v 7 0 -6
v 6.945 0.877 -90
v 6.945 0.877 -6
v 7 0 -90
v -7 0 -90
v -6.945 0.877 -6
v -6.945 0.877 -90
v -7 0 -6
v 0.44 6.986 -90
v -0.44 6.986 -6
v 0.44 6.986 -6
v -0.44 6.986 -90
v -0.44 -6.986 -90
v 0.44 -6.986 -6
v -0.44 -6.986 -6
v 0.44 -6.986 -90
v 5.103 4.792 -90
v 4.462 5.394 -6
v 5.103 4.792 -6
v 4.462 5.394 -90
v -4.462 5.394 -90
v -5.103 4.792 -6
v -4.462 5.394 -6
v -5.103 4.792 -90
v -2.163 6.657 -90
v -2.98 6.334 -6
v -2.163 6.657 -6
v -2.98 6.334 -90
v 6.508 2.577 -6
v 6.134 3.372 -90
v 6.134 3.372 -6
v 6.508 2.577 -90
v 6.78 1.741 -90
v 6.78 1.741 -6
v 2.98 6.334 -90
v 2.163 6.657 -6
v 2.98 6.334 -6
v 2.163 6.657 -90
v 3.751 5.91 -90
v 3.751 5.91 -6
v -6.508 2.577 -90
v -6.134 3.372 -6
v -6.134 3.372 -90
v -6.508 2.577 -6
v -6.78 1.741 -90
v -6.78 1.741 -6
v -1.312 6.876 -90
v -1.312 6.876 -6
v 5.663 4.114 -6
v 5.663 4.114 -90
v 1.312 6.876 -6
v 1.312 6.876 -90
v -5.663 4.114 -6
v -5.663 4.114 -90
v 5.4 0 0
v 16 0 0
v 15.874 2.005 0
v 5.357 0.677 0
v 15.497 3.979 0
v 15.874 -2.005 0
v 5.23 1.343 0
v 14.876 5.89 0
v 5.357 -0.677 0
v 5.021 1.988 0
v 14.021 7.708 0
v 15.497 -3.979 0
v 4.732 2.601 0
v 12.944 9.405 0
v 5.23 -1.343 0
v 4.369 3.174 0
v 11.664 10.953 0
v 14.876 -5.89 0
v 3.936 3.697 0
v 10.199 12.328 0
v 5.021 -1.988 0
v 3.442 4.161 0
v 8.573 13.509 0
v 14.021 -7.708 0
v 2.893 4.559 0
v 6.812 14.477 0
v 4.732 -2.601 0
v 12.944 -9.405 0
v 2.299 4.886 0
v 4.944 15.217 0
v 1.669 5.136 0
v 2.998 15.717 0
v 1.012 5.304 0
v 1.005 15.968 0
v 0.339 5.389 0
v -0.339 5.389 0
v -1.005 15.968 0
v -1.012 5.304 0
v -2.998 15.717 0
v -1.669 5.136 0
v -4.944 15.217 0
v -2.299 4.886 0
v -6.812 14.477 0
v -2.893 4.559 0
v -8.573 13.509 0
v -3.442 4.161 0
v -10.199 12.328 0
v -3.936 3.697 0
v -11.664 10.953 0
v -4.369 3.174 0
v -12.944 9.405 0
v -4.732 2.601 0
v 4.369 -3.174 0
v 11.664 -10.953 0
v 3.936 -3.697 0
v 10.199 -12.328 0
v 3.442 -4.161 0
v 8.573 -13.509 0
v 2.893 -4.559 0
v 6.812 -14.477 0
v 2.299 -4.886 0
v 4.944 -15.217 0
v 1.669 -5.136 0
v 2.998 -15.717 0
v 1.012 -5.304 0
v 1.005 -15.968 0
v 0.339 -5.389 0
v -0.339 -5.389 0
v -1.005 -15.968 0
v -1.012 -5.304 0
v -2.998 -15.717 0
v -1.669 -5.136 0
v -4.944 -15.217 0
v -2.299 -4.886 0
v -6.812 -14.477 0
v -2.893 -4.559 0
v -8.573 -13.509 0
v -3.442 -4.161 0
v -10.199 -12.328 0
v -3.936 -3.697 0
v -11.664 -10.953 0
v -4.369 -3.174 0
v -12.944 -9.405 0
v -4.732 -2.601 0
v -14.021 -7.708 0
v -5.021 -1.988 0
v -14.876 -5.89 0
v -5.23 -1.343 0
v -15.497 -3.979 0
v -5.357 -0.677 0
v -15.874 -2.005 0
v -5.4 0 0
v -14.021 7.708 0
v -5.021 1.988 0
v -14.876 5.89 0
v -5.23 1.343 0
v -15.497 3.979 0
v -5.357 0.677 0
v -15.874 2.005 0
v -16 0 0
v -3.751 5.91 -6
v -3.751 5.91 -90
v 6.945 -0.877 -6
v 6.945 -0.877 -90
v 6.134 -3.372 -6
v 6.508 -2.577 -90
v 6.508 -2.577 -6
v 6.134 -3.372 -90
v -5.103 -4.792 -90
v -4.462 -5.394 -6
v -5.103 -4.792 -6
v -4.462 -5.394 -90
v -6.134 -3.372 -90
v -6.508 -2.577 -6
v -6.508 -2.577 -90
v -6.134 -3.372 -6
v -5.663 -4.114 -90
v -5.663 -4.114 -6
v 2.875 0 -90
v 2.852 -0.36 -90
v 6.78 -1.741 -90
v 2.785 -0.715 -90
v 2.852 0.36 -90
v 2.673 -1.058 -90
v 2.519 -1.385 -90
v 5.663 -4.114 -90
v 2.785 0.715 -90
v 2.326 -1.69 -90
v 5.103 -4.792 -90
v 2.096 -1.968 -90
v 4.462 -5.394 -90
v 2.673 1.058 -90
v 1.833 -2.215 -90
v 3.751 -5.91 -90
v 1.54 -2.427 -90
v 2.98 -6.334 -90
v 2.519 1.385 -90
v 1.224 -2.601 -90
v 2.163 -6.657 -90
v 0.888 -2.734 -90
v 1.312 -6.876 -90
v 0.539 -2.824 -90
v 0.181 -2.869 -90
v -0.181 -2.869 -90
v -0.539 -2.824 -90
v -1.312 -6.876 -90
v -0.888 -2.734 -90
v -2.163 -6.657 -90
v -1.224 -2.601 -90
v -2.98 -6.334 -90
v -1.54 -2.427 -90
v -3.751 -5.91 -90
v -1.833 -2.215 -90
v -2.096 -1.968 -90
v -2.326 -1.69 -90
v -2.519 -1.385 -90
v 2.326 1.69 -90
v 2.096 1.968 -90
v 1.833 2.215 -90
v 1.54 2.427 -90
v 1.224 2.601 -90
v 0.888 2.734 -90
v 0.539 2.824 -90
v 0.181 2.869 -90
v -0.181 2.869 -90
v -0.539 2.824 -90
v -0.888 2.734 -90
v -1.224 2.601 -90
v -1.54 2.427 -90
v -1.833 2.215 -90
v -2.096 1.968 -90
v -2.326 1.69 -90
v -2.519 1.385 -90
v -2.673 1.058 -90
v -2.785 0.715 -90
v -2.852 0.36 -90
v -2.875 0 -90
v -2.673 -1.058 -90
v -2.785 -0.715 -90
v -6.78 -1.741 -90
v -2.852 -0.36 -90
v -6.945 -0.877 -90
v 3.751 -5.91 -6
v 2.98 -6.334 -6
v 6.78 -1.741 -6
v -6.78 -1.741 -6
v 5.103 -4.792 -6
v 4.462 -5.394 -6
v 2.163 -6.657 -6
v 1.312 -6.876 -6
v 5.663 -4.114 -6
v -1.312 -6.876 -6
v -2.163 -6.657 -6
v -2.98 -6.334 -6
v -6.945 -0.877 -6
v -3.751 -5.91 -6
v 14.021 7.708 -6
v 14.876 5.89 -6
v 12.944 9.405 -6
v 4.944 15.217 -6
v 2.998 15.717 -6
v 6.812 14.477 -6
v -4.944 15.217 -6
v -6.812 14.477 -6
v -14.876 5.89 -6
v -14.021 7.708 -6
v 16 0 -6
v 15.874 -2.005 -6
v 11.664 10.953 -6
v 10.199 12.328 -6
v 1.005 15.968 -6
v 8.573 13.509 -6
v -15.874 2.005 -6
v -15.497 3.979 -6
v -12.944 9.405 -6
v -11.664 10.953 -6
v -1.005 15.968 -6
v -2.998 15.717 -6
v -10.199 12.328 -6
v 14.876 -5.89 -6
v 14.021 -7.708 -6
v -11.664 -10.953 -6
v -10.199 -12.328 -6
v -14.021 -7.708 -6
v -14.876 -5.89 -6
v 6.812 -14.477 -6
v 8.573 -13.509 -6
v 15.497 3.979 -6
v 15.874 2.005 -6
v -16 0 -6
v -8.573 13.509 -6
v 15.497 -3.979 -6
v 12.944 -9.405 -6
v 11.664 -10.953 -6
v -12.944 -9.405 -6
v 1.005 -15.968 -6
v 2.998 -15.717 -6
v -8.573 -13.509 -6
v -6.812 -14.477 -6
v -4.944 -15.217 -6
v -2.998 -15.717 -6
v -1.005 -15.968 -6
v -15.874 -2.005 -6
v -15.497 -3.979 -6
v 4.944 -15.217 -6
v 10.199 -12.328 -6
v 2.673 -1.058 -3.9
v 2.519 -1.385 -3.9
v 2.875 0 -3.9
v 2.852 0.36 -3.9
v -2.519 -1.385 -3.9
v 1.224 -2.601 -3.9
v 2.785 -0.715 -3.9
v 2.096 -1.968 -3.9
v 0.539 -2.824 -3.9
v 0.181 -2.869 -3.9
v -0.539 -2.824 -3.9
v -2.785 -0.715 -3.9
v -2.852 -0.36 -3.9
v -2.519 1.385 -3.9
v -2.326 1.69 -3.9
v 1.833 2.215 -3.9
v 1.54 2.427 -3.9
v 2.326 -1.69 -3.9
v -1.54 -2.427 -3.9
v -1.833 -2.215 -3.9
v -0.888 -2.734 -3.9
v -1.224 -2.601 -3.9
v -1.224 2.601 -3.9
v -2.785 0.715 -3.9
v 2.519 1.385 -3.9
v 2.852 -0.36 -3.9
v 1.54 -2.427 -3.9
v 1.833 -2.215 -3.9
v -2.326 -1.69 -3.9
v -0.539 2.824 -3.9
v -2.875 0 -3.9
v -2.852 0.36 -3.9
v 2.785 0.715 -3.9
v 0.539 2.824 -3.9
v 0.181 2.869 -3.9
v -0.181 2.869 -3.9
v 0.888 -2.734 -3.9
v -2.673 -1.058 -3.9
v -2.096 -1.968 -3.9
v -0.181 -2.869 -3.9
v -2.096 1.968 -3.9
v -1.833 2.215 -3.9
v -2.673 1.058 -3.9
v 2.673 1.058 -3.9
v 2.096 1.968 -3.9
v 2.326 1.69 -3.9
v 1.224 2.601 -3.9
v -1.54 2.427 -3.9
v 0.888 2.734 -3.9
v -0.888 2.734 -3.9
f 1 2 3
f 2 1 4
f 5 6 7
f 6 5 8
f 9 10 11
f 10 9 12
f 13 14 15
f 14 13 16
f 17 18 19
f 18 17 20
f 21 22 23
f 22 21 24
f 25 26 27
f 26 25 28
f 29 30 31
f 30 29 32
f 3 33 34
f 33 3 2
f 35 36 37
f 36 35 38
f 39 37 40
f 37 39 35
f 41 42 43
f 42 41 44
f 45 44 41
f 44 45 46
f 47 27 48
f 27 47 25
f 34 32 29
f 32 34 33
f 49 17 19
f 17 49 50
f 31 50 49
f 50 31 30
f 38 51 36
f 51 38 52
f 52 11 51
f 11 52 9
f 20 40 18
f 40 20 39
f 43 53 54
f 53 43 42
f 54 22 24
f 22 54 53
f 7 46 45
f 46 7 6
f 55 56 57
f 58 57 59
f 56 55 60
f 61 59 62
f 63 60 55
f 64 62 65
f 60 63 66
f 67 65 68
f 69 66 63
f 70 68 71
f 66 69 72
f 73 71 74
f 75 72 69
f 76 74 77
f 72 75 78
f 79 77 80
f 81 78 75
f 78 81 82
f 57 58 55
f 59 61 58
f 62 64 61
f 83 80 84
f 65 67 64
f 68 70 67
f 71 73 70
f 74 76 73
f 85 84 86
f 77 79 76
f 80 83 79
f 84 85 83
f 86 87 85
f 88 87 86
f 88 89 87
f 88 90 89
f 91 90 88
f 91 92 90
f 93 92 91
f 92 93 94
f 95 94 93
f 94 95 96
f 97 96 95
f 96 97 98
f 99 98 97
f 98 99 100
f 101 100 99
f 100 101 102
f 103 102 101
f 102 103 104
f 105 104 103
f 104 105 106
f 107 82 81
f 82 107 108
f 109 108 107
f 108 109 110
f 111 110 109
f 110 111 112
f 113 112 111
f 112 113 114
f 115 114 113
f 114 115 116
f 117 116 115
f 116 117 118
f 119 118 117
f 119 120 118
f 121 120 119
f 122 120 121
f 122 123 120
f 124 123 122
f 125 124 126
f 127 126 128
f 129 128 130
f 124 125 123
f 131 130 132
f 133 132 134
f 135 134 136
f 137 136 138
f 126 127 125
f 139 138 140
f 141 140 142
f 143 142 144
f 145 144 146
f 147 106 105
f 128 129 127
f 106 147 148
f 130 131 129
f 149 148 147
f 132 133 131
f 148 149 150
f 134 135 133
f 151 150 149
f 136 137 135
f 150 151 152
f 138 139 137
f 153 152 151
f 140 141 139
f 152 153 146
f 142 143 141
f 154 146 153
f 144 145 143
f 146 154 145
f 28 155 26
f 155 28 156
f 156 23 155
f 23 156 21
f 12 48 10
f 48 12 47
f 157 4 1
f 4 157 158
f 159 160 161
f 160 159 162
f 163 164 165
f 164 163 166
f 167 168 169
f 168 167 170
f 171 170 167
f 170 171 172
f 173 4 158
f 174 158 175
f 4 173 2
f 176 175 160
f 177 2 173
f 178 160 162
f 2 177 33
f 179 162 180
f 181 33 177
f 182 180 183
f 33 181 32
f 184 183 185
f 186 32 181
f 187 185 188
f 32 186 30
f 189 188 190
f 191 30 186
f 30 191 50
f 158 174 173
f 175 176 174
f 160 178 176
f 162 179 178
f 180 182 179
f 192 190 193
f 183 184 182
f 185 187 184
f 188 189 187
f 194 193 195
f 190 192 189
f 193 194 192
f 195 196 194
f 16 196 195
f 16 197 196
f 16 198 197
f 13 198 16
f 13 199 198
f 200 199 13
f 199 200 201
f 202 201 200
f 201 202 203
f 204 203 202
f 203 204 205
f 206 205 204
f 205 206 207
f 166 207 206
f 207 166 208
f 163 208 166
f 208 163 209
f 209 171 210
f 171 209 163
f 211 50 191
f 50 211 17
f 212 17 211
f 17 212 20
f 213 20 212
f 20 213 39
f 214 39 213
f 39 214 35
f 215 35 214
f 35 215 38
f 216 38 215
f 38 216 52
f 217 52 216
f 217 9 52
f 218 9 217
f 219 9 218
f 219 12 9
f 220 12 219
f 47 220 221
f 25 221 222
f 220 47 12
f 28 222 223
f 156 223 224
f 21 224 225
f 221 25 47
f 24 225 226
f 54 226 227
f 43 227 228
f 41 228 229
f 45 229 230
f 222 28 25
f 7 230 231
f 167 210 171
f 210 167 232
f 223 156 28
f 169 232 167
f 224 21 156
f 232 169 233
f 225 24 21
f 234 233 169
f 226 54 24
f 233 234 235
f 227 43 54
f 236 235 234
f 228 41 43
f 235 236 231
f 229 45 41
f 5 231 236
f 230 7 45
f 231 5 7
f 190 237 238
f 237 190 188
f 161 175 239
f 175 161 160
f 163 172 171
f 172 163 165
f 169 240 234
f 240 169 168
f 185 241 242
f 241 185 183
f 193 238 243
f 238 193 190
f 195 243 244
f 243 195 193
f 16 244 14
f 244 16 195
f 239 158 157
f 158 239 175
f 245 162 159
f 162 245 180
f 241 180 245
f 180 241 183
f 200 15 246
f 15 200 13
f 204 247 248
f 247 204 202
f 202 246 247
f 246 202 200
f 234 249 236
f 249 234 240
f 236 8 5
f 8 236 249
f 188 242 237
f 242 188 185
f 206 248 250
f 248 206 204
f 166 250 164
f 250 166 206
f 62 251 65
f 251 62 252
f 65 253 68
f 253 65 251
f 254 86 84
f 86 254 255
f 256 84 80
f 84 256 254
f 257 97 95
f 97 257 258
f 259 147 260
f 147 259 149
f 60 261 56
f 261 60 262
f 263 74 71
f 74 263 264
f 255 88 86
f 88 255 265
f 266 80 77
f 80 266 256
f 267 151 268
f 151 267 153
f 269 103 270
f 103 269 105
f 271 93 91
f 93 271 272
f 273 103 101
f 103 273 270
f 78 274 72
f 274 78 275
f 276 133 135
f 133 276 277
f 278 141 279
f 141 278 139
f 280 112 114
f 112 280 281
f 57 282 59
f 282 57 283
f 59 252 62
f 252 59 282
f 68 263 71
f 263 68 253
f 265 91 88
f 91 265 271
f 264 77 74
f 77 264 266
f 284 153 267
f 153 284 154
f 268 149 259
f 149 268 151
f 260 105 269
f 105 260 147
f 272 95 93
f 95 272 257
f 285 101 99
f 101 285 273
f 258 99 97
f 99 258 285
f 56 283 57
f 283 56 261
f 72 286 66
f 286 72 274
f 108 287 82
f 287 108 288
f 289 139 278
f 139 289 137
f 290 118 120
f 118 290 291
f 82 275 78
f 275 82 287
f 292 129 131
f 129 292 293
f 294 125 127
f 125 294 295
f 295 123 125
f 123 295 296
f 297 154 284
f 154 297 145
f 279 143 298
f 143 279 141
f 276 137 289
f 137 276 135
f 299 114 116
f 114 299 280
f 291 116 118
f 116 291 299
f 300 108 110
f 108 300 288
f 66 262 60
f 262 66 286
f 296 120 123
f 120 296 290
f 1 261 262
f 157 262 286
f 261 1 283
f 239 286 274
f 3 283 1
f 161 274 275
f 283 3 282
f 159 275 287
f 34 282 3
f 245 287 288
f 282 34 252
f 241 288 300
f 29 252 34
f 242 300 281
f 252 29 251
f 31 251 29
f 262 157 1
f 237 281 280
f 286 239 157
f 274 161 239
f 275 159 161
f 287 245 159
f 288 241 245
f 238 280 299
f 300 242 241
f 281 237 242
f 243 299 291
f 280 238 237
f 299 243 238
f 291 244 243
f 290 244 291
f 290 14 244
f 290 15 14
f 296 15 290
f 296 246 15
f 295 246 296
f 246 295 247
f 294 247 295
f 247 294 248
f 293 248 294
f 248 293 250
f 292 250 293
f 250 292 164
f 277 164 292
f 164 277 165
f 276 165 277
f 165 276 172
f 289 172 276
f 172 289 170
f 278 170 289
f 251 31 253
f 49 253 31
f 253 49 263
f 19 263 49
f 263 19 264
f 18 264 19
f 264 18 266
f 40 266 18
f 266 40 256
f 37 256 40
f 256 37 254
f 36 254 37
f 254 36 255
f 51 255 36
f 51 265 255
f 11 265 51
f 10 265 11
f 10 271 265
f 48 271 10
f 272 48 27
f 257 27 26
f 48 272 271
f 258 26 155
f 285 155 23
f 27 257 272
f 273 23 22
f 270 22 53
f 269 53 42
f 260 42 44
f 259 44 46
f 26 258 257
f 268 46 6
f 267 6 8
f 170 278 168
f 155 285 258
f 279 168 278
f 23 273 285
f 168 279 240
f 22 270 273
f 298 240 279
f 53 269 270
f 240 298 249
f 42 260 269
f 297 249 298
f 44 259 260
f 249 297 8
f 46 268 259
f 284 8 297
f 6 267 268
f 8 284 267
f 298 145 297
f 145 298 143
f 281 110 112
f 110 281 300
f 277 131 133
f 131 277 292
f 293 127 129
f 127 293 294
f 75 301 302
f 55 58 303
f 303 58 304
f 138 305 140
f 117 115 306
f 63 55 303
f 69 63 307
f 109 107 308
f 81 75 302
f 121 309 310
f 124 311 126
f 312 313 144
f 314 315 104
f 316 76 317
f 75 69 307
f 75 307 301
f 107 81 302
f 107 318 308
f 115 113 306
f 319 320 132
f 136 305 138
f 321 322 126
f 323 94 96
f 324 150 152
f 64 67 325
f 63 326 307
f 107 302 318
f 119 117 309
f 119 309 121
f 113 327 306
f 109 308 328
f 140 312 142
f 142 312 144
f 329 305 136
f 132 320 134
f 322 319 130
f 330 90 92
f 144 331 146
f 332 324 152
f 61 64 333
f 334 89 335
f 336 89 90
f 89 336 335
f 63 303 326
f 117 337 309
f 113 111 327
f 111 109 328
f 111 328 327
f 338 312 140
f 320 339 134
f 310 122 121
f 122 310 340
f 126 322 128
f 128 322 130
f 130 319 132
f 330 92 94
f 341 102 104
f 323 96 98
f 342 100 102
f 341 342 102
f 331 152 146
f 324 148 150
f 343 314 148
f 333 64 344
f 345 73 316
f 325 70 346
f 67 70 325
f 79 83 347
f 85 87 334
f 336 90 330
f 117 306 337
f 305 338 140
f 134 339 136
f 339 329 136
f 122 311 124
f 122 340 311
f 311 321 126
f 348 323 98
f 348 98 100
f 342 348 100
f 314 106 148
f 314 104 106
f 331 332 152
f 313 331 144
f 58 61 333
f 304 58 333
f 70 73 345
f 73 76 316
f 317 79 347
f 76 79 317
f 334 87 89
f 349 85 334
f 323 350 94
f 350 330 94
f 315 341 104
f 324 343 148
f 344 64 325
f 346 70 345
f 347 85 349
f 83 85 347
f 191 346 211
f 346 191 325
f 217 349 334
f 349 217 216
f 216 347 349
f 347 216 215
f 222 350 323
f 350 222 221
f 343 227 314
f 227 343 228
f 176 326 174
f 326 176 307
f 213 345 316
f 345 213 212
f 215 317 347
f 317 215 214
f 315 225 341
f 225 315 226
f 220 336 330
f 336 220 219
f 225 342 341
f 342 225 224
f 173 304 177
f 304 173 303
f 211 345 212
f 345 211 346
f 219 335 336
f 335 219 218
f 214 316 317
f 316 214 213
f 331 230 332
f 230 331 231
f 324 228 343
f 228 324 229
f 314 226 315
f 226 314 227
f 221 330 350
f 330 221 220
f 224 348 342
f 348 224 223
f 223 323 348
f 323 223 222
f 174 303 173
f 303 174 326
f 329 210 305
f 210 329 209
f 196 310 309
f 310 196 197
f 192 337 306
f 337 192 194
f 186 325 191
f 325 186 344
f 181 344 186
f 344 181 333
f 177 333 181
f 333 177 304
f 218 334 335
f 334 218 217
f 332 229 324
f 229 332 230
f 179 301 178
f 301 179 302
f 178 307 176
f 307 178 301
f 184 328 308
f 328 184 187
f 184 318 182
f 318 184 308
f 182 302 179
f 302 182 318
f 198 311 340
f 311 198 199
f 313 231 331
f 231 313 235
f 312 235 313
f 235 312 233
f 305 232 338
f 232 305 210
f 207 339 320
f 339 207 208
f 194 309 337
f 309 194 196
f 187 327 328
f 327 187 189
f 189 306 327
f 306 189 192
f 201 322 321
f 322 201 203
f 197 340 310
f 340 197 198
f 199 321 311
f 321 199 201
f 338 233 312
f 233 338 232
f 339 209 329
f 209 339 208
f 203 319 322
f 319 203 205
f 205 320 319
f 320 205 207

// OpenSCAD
$fn = 50;


difference() {
	union() {
		translate(v = [0, 0, -90.0000000000]) {
			cylinder(h = 90, r = 7.0000000000);
		}
		translate(v = [0, 0, -6.0000000000]) {
			cylinder(h = 6, r = 16.0000000000);
		}
	}
	union() {
		translate(v = [0, 0, 0]) {
			rotate(a = [0, 0, 0]) {
				difference() {
					union() {
						#translate(v = [0, 0, -90.0000000000]) {
							cylinder(h = 90, r = 2.6000000000);
						}
						#translate(v = [0, 0, -3.9000000000]) {
							cylinder(h = 3.9000000000, r = 7.0000000000, r1 = 2.8750000000, r2 = 5.4000000000);
						}
						#translate(v = [0, 0, -90.0000000000]) {
							cylinder(h = 90, r = 2.8750000000);
						}
						#translate(v = [0, 0, -90.0000000000]) {
							cylinder(h = 90, r = 2.6000000000);
						}
					}
					union();
				}
			}
		}
	}
}
